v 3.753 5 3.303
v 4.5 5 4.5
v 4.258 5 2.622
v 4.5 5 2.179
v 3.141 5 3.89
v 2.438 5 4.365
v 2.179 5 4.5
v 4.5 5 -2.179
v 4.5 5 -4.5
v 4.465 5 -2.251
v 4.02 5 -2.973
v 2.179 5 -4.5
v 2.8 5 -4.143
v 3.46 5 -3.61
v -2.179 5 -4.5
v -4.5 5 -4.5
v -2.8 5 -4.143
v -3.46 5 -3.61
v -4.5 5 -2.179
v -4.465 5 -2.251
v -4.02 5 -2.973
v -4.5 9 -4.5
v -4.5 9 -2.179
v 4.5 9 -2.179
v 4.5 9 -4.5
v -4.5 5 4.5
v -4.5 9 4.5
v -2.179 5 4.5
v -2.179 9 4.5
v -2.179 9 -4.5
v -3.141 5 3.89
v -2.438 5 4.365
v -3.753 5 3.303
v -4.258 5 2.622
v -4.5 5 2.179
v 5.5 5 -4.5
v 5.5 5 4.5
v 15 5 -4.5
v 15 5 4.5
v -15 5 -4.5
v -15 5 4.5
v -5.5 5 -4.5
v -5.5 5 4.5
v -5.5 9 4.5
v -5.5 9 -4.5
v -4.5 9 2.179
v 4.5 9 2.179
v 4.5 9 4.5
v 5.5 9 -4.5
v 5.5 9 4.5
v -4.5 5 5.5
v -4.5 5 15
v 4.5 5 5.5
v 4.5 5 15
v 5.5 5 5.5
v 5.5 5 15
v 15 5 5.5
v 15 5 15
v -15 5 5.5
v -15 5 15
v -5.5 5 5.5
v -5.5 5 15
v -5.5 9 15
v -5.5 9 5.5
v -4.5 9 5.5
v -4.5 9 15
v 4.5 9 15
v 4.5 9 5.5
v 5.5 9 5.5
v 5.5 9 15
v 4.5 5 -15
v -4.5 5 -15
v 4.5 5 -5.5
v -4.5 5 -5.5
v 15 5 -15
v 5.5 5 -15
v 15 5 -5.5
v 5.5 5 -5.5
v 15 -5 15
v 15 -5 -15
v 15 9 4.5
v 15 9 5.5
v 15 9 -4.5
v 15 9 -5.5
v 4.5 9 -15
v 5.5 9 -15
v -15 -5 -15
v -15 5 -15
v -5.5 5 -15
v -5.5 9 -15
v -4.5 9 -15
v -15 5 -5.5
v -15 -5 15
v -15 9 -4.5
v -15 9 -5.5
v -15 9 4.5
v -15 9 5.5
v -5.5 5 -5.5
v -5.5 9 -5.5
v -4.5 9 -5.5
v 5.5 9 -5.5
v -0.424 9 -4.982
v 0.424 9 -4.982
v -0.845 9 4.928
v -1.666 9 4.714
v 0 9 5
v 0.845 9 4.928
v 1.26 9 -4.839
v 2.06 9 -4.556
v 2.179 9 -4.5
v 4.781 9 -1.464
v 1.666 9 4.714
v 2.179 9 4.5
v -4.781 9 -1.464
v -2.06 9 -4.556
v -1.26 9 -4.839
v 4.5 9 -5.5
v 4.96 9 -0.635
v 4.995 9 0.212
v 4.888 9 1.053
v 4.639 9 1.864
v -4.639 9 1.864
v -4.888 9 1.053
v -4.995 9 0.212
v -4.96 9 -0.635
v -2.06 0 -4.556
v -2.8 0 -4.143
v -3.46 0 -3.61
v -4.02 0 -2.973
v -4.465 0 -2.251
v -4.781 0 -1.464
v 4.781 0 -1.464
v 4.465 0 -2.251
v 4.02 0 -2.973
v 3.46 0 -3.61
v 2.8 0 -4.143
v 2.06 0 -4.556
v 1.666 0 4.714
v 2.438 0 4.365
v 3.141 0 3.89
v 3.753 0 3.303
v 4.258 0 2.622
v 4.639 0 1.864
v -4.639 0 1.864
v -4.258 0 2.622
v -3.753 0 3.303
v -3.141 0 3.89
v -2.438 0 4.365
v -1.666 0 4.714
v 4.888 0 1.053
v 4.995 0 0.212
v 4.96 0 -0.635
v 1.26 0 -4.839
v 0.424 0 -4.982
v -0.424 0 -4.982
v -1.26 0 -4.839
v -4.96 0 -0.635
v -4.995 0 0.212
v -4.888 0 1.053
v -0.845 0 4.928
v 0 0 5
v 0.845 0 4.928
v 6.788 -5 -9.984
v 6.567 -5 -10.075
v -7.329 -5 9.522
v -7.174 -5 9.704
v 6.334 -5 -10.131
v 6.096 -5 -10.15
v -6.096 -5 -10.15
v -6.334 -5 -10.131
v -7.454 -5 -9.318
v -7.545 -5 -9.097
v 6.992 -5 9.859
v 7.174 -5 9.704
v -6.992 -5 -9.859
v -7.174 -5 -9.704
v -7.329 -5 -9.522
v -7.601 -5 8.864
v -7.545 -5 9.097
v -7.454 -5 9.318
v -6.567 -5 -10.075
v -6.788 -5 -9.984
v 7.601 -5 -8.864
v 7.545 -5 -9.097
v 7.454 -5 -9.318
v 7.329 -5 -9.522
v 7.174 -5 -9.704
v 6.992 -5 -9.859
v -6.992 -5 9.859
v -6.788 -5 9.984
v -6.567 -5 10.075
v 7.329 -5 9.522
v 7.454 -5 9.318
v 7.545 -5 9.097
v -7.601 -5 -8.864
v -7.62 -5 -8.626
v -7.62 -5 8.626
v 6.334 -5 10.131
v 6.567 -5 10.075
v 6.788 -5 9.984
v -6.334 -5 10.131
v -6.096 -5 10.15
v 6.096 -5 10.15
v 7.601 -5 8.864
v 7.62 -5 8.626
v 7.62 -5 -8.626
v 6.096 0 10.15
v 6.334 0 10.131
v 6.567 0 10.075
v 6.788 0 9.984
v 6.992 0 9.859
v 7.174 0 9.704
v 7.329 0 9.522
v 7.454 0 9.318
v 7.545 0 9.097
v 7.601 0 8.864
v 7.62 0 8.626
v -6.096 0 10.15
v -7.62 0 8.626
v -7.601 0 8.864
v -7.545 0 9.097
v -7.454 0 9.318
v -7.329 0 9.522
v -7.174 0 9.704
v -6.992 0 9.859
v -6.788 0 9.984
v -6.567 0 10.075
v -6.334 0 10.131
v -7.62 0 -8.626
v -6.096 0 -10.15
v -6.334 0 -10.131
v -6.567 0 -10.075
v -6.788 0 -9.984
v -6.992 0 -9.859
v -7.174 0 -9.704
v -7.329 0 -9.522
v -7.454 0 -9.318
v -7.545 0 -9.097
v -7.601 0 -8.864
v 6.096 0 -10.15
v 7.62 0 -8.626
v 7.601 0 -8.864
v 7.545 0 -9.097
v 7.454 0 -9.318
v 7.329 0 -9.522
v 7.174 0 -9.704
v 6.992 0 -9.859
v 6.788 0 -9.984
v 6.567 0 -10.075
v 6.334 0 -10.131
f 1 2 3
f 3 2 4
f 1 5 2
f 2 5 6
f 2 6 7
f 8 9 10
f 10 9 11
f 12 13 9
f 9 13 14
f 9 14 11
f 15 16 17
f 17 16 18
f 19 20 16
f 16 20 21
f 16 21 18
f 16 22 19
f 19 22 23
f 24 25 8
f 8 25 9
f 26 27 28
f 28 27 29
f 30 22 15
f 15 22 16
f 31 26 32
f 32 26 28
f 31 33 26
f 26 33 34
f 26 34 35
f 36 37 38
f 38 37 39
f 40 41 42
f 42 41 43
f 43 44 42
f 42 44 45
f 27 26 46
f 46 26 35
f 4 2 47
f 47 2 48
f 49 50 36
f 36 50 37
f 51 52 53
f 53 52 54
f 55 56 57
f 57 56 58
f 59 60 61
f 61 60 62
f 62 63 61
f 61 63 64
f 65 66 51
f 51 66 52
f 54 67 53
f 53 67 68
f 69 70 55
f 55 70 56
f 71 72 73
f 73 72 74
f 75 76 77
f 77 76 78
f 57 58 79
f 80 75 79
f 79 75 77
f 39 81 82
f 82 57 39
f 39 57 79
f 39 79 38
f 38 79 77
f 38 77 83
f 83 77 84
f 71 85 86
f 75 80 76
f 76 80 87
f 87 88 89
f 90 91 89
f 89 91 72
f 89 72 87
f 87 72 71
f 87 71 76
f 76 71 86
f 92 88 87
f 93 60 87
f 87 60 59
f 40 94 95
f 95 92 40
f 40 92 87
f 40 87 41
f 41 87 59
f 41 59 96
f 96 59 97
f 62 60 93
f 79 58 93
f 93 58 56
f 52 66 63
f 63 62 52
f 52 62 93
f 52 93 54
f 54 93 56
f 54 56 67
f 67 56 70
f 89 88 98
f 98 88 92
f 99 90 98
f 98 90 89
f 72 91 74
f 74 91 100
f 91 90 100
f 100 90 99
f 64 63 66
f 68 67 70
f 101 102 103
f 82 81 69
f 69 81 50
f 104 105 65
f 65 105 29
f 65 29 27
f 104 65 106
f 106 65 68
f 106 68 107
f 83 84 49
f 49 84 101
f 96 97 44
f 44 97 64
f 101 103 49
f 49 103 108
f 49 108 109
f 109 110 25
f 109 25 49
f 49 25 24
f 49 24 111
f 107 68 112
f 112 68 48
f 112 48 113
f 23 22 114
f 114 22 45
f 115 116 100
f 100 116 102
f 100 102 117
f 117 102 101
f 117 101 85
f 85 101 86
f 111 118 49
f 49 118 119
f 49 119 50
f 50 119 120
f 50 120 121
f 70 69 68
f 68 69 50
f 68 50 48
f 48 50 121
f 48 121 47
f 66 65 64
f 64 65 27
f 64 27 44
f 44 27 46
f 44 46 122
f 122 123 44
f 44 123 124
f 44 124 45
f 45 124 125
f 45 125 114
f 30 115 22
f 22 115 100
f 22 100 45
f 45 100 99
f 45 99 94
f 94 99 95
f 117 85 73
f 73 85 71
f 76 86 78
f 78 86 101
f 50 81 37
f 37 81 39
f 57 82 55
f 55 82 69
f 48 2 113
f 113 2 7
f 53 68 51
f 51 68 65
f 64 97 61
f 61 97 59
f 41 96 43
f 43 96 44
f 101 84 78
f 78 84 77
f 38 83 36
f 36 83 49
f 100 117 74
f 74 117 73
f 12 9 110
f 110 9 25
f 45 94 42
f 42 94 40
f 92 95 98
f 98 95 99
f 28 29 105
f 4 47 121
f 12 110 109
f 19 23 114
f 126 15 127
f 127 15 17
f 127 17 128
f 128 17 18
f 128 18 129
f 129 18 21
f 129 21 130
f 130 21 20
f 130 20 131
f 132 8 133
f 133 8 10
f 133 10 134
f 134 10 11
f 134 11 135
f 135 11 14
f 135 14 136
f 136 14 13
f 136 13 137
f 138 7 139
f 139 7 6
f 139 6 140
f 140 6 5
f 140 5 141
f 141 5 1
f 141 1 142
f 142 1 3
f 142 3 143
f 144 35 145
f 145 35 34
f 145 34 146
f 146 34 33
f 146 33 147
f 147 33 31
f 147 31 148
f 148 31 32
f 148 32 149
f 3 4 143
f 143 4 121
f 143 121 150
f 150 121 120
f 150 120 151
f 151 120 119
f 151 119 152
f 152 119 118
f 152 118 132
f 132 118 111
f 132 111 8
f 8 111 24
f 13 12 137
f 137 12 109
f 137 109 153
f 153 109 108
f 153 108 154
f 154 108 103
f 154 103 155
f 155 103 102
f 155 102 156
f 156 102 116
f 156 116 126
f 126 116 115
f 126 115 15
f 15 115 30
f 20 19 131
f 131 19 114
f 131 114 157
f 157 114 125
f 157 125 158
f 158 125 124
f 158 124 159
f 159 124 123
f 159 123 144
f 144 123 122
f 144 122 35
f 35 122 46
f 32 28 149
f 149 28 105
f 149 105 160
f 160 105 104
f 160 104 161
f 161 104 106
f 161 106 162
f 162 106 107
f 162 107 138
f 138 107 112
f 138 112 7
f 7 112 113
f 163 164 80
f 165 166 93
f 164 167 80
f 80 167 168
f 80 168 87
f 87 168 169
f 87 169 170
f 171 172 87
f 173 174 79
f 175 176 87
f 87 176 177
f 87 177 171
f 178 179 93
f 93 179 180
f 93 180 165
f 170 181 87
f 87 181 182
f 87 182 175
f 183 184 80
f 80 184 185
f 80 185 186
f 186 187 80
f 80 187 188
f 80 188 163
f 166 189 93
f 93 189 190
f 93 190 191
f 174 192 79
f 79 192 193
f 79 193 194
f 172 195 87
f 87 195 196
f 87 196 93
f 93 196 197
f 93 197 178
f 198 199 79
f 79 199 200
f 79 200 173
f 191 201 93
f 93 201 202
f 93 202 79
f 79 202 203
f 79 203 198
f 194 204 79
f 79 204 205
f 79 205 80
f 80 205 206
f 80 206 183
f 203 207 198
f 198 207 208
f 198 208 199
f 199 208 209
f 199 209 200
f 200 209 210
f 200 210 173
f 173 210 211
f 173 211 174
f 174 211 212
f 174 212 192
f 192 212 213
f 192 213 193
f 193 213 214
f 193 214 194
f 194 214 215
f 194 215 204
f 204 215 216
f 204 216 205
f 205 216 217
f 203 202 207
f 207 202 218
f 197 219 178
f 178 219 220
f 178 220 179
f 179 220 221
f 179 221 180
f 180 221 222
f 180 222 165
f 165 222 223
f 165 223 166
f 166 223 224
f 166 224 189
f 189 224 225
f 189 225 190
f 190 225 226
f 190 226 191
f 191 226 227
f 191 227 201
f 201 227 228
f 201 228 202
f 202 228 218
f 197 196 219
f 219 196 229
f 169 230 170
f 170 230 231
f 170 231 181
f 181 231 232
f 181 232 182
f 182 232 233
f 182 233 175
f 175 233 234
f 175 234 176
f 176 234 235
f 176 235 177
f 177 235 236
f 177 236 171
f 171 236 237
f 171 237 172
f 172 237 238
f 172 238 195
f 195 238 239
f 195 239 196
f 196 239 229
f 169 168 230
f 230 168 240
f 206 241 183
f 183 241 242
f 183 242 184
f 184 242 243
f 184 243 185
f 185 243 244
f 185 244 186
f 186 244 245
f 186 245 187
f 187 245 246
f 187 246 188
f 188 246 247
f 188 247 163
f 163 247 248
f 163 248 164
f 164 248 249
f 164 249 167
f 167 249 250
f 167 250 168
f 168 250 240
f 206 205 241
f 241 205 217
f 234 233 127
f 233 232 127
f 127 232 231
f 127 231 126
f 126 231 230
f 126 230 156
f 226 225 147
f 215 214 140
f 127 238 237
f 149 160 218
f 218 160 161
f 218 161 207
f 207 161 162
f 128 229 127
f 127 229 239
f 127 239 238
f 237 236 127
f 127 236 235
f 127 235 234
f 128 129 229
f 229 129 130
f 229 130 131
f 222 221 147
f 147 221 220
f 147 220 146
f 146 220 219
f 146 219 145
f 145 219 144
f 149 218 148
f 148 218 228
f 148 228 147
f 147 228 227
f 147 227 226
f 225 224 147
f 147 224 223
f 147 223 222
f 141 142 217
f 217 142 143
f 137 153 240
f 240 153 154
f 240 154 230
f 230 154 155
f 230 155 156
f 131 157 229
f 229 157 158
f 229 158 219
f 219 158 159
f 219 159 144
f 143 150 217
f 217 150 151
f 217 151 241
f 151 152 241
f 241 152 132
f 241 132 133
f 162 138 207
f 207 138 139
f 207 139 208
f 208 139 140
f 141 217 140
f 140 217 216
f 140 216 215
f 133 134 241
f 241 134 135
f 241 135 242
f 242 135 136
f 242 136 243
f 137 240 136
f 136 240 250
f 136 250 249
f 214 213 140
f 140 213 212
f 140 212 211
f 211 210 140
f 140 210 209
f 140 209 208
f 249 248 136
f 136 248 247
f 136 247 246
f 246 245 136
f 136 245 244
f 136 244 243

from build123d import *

# Parameters (mm, degrees)
SKETCH1_W                   = 30
SKETCH1_H                   = 30
BOSS_EXTRUDE1_DEPTH         = 5
SKETCH2_W                   = 1
SKETCH2_H                   = 30
BOSS_EXTRUDE2_DEPTH         = 4
LPATTERN1_COUNT             = 2
LPATTERN1_PITCH             = 10
CIRPATTERN1_COUNT           = 2
CIRPATTERN1_ANGLE           = 90
CIRPATTERN1_COPY_1_SKETCH_W = 1
CIRPATTERN1_COPY_1_SKETCH_H = 30
CIRPATTERN1_COPY_1_DEPTH    = 4
CUT_EXTRUDE2_DEPTH          = 22.794494718
CUT_EXTRUDE2_DEPTH_BACK     = 22.794494718
SKETCH4_R                   = 5
SKETCH8_W                   = 30
SKETCH8_H                   = 30
BOSS_EXTRUDE3_DEPTH         = 5
CUT_EXTRUDE3_DEPTH          = 5


# Read off the part's stored shape, not the designer's step: Cut-Extrude3
with BuildPart() as part:
    # Sketch1 → Boss-Extrude1 (new body)
    with BuildSketch(Plane(origin=(0, 0, 0), x_dir=(1, 0, 0), z_dir=(0, 1, 0))):
        Rectangle(SKETCH1_W, SKETCH1_H)
    extrude(amount=BOSS_EXTRUDE1_DEPTH)

    # Sketch2 → Boss-Extrude2 (add)
    with BuildSketch(Plane(origin=(0, 5, 0), x_dir=(1, 0, 0), z_dir=(0, 1, 0))):
        with Locations((-5, 0)):
            Rectangle(SKETCH2_W, SKETCH2_H)
    boss_extrude2 = extrude(amount=BOSS_EXTRUDE2_DEPTH)

    # LPattern1: Boss-Extrude2 ×2
    with Locations(*[(i * LPATTERN1_PITCH, 0, 0) for i in range(1, LPATTERN1_COUNT)]):
        add(boss_extrude2)

    # CirPattern1: Boss-Extrude2 ×2 about axis
    cirpattern1_axis = Axis((0, 5, 0), (0, 1, 0))
    for i in range(1, CIRPATTERN1_COUNT):
        add(boss_extrude2.rotate(cirpattern1_axis, i * CIRPATTERN1_ANGLE / (CIRPATTERN1_COUNT - 1)))

    # CirPattern1 copy 1 sketch → CirPattern1 copy 1 (add)
    with BuildSketch(Plane(origin=(0, 5, -10), x_dir=(0, 0, -1), z_dir=(0, 1, 0))):
        with Locations((-5, 0)):
            Rectangle(CIRPATTERN1_COPY_1_SKETCH_W, CIRPATTERN1_COPY_1_SKETCH_H)
    extrude(amount=CIRPATTERN1_COPY_1_DEPTH)

    # Sketch4 → Cut-Extrude2 (cut, two sides: drawn at the far end of the back side and taken through both)
    with BuildSketch(Plane(origin=(0, 5, 0), x_dir=(1, 0, 0), z_dir=(0, 1, 0)).offset(-CUT_EXTRUDE2_DEPTH_BACK)):
        with Locations(Location((0, 0, 0), (0, 0, 270))):
            Circle(SKETCH4_R)
    extrude(amount=CUT_EXTRUDE2_DEPTH + CUT_EXTRUDE2_DEPTH_BACK, mode=Mode.SUBTRACT)

    # Sketch8 → Boss-Extrude3 (add)
    with BuildSketch(Plane.XZ):
        Rectangle(SKETCH8_W, SKETCH8_H)
    extrude(amount=BOSS_EXTRUDE3_DEPTH)

    # Cut-Extrude3 outline → Cut-Extrude3 (cut)
    with BuildSketch(Plane.XZ):
        with BuildLine():
            ThreePointArc((7.62, 8.626), (7.173630735, 9.703630735), (6.096, 10.15))
            Line((6.096, 10.15), (-6.096, 10.15))
            ThreePointArc((-6.096, 10.15), (-7.173630735, 9.703630735), (-7.62, 8.626))
            Line((-7.62, 8.626), (-7.62, -8.626))
            ThreePointArc((-7.62, -8.626), (-7.173630735, -9.703630735), (-6.096, -10.15))
            Line((-6.096, -10.15), (6.096, -10.15))
            ThreePointArc((6.096, -10.15), (7.173630735, -9.703630735), (7.62, -8.626))
            Line((7.62, -8.626), (7.62, 8.626))
        make_face()
    extrude(amount=CUT_EXTRUDE3_DEPTH, mode=Mode.SUBTRACT)


solid = part.part
